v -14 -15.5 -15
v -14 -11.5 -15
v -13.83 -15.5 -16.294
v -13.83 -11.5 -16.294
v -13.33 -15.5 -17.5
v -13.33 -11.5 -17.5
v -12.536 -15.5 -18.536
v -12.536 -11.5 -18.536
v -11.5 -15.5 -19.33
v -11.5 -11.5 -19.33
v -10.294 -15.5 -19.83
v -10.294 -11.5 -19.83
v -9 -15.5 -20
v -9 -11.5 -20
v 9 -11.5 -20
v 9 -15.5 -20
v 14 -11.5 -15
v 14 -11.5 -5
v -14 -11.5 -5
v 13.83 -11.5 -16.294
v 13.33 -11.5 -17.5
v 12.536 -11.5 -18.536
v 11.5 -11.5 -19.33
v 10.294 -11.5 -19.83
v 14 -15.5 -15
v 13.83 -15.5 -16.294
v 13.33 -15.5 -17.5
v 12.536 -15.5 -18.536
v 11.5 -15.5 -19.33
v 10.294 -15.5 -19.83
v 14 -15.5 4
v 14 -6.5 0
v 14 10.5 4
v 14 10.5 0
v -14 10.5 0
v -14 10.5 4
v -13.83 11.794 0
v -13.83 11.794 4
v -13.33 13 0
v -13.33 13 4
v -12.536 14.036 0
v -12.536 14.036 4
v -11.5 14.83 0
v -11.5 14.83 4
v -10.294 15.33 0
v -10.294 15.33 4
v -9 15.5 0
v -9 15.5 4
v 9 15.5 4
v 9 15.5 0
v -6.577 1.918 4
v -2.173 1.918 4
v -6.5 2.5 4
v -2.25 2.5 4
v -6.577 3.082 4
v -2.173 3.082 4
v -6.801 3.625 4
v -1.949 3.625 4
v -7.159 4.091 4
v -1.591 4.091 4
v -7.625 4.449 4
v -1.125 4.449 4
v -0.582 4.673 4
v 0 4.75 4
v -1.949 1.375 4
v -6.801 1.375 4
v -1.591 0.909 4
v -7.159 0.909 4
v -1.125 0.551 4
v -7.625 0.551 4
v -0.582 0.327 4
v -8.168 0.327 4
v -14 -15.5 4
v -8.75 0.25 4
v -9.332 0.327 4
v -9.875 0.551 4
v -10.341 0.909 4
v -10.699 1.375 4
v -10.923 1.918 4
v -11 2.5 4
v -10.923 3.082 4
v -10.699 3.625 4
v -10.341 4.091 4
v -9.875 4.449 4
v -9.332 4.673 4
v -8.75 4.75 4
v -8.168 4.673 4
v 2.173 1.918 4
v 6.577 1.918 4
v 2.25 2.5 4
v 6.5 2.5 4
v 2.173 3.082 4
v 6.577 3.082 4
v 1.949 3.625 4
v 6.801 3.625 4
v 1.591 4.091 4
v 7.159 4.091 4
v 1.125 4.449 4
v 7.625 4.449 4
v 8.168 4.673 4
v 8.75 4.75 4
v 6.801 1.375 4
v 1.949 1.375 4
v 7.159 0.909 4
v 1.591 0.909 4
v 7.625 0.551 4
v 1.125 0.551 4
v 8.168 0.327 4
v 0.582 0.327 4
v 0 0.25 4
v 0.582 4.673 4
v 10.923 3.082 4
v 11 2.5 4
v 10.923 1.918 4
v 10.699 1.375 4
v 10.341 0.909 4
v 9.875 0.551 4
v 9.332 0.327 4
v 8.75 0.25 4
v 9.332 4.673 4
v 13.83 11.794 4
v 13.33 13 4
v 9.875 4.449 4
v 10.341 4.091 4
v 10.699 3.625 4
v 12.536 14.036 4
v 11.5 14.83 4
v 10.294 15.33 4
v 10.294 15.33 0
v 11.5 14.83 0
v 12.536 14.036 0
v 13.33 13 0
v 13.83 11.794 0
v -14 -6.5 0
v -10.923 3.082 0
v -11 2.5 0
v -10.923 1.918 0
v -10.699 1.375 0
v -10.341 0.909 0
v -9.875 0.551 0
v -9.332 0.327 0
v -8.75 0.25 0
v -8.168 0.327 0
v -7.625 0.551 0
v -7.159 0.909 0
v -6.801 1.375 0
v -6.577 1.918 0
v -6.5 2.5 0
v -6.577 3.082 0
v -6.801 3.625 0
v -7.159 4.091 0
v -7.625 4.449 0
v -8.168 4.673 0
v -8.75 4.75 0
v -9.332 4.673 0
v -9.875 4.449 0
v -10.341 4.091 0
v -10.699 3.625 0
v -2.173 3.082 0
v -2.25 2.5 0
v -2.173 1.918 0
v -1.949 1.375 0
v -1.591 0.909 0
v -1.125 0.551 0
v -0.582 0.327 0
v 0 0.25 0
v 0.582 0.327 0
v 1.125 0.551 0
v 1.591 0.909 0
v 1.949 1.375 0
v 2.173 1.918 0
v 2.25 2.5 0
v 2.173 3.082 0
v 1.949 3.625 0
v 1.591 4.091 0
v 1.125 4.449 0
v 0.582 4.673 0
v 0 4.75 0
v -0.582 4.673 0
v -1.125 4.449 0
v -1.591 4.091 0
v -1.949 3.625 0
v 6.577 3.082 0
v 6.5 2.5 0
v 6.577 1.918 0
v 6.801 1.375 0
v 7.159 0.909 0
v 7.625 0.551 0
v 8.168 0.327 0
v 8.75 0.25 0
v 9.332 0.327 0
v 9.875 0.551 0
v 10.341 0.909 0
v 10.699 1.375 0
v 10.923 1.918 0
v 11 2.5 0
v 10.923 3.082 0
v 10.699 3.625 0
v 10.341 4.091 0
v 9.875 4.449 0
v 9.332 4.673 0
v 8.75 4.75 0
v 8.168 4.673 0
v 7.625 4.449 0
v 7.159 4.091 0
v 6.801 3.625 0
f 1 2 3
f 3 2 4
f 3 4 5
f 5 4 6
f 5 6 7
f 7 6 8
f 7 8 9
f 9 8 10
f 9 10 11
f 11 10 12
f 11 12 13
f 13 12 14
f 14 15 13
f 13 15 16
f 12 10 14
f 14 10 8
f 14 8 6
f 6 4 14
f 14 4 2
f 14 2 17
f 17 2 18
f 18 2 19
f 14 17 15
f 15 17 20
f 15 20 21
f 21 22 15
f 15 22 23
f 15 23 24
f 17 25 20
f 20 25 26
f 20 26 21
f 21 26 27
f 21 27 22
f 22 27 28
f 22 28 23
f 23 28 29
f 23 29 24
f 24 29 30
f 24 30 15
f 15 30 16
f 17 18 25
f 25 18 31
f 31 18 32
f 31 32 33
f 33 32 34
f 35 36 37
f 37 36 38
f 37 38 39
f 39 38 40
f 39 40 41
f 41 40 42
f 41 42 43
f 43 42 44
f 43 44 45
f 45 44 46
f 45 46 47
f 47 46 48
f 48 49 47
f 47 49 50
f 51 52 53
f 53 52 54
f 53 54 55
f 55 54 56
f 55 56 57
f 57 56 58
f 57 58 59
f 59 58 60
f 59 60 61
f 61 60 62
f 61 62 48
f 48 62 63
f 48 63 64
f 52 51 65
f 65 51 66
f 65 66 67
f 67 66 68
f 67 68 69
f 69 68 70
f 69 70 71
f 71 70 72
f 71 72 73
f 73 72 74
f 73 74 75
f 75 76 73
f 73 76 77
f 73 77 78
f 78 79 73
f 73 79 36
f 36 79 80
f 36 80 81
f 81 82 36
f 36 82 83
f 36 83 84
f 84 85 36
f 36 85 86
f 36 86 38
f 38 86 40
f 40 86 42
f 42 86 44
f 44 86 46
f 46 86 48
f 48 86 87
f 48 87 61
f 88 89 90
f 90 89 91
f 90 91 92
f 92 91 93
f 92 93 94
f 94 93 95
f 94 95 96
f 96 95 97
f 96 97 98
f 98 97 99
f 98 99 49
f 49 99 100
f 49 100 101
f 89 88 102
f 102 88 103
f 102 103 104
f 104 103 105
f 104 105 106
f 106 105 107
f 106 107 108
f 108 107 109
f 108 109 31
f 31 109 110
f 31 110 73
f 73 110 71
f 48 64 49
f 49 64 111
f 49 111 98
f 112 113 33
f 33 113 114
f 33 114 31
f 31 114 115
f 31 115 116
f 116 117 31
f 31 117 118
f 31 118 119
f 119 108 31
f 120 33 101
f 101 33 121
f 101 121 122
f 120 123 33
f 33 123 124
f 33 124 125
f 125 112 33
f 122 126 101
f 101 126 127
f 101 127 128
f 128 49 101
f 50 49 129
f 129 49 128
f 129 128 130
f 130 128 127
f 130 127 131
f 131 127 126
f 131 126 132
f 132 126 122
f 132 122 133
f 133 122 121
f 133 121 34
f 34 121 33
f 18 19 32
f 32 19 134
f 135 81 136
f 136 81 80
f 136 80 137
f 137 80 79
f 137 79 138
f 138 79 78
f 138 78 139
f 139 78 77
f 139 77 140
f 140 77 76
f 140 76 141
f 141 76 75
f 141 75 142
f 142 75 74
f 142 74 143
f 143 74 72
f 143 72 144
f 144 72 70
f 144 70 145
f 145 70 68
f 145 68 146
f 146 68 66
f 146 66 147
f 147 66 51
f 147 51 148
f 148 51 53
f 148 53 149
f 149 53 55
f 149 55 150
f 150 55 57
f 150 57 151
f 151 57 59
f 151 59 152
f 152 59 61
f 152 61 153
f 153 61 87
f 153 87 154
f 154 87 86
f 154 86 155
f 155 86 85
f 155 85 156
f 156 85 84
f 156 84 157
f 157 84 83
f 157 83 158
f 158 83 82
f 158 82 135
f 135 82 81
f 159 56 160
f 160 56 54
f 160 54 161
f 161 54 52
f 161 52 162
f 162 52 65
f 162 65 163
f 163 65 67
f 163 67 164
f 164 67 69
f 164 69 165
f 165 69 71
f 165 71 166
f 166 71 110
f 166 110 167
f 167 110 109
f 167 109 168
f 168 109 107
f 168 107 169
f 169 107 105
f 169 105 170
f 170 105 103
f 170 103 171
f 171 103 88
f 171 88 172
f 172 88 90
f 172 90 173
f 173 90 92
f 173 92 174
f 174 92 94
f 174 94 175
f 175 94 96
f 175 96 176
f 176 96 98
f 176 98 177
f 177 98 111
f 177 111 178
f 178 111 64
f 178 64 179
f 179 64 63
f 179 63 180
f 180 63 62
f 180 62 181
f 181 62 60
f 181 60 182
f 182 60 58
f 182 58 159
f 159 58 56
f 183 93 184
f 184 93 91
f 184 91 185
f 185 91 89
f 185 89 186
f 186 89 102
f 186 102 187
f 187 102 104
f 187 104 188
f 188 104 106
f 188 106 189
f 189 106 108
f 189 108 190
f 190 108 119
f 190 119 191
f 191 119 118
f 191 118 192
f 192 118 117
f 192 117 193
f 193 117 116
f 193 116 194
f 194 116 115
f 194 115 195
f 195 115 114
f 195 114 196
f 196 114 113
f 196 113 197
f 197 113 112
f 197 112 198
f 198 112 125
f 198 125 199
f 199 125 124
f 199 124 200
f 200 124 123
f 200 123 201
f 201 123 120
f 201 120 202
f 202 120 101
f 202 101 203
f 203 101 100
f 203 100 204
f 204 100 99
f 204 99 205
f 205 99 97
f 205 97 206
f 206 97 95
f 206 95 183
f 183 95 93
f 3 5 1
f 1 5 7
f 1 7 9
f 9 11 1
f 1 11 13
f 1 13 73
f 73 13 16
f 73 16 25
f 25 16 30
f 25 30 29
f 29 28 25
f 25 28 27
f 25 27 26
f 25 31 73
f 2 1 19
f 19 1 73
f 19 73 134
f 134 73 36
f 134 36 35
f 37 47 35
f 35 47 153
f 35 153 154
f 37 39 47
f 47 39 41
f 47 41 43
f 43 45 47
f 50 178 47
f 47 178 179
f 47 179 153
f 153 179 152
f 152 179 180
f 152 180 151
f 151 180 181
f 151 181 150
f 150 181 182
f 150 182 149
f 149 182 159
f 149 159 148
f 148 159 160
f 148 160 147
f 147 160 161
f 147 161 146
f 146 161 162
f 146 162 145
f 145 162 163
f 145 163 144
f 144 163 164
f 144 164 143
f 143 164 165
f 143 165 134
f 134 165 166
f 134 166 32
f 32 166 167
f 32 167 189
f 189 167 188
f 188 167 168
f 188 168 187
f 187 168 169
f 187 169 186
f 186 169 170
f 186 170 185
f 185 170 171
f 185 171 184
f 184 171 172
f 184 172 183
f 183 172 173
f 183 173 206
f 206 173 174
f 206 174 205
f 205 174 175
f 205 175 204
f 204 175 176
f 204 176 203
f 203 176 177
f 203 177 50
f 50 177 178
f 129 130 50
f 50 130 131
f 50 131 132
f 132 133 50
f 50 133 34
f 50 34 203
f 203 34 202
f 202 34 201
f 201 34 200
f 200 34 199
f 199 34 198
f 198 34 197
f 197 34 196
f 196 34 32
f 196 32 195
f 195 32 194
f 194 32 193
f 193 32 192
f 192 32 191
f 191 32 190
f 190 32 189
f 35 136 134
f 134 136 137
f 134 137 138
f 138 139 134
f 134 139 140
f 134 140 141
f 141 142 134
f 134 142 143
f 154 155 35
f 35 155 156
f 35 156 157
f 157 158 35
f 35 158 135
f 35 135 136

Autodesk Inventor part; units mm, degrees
ref_plane "YZ Plane" through (0, 0, 0) normal (1, 0, 0) x (0, 1, 0)
ref_plane "XZ Plane" through (0, 0, 0) normal (0, 1, 0) x (-1, 0, 0)
ref_plane "XY Plane" through (0, 0, 0) normal (0, 0, 1) x (1, 0, 0)
sketch "Sketch1" plane through (0, 0, 0) normal (0, 0, 1) x (1, 0, 0)
  line L0 (-14, 15.5) -> (14, 15.5)
  line L1 (14, 15.5) -> (14, -15.5)
  line L2 (14, -15.5) -> (-14, -15.5)
  line L3 (-14, -15.5) -> (-14, 15.5)
  line L4 (-14, 15.5) -> (14, -15.5) construction
  line L5 (14, 15.5) -> (-14, -15.5) construction
  point P0 (0, 0)
  dimension "d0" = 28
  dimension "d1" = 31
extrude "Extrusion1" add sketch "Sketch1" along normal blind 4
sketch "Sketch2" plane through (0, 0, 4) normal (0, 0, 1) x (1, 0, 0)
  line L0 (-14, -15.5) -> (14, -15.5) projected
  point P0 (0, 2.5)
  point P1 (-8.75, 2.5)
  point P2 (8.75, 2.5)
  dimension "d7" = 8.75
  dimension "d8" = 8.75
  dimension "d19" = 18
  dimension "d20" = 18
  dimension "d21" = 18
hole "Hole1" at (0, 2.5, 4) at (-8.75, 2.5, 4) at (8.75, 2.5, 4) direction (0, 0, -1) diameter 4.5 end through all
sketch "Sketch3" plane through (0, 0, 0) normal (0, 0, -1) x (-1, 0, 0)
  line L0 (14, -15.5) -> (-14, -15.5) projected
  line L1 (14, 15.5) -> (14, -15.5) projected
  line L2 (-14, -15.5) -> (14, -15.5)
  line L3 (14, -15.5) -> (14, -11.5)
  line L4 (14, -11.5) -> (-14, -11.5)
  line L5 (-14, -11.5) -> (-14, -15.5)
  point P0 (0, 0)
  dimension "d16" = 4
extrude "Extrusion2" add sketch "Sketch3" along normal blind 20
chamfer "Chamfer1" distance 5 angle 45 1 edges at (0, -11.5, 0)
fillet "Fillet1" radius 5 4 edges at (14, 15.5, 2) (-14, 15.5, 2) (14, -13.5, -20) (-14, -13.5, -20)
equation "\"d20\" = d19"
equation "\"d21\" = d19"
properties part number "BLTouch"
